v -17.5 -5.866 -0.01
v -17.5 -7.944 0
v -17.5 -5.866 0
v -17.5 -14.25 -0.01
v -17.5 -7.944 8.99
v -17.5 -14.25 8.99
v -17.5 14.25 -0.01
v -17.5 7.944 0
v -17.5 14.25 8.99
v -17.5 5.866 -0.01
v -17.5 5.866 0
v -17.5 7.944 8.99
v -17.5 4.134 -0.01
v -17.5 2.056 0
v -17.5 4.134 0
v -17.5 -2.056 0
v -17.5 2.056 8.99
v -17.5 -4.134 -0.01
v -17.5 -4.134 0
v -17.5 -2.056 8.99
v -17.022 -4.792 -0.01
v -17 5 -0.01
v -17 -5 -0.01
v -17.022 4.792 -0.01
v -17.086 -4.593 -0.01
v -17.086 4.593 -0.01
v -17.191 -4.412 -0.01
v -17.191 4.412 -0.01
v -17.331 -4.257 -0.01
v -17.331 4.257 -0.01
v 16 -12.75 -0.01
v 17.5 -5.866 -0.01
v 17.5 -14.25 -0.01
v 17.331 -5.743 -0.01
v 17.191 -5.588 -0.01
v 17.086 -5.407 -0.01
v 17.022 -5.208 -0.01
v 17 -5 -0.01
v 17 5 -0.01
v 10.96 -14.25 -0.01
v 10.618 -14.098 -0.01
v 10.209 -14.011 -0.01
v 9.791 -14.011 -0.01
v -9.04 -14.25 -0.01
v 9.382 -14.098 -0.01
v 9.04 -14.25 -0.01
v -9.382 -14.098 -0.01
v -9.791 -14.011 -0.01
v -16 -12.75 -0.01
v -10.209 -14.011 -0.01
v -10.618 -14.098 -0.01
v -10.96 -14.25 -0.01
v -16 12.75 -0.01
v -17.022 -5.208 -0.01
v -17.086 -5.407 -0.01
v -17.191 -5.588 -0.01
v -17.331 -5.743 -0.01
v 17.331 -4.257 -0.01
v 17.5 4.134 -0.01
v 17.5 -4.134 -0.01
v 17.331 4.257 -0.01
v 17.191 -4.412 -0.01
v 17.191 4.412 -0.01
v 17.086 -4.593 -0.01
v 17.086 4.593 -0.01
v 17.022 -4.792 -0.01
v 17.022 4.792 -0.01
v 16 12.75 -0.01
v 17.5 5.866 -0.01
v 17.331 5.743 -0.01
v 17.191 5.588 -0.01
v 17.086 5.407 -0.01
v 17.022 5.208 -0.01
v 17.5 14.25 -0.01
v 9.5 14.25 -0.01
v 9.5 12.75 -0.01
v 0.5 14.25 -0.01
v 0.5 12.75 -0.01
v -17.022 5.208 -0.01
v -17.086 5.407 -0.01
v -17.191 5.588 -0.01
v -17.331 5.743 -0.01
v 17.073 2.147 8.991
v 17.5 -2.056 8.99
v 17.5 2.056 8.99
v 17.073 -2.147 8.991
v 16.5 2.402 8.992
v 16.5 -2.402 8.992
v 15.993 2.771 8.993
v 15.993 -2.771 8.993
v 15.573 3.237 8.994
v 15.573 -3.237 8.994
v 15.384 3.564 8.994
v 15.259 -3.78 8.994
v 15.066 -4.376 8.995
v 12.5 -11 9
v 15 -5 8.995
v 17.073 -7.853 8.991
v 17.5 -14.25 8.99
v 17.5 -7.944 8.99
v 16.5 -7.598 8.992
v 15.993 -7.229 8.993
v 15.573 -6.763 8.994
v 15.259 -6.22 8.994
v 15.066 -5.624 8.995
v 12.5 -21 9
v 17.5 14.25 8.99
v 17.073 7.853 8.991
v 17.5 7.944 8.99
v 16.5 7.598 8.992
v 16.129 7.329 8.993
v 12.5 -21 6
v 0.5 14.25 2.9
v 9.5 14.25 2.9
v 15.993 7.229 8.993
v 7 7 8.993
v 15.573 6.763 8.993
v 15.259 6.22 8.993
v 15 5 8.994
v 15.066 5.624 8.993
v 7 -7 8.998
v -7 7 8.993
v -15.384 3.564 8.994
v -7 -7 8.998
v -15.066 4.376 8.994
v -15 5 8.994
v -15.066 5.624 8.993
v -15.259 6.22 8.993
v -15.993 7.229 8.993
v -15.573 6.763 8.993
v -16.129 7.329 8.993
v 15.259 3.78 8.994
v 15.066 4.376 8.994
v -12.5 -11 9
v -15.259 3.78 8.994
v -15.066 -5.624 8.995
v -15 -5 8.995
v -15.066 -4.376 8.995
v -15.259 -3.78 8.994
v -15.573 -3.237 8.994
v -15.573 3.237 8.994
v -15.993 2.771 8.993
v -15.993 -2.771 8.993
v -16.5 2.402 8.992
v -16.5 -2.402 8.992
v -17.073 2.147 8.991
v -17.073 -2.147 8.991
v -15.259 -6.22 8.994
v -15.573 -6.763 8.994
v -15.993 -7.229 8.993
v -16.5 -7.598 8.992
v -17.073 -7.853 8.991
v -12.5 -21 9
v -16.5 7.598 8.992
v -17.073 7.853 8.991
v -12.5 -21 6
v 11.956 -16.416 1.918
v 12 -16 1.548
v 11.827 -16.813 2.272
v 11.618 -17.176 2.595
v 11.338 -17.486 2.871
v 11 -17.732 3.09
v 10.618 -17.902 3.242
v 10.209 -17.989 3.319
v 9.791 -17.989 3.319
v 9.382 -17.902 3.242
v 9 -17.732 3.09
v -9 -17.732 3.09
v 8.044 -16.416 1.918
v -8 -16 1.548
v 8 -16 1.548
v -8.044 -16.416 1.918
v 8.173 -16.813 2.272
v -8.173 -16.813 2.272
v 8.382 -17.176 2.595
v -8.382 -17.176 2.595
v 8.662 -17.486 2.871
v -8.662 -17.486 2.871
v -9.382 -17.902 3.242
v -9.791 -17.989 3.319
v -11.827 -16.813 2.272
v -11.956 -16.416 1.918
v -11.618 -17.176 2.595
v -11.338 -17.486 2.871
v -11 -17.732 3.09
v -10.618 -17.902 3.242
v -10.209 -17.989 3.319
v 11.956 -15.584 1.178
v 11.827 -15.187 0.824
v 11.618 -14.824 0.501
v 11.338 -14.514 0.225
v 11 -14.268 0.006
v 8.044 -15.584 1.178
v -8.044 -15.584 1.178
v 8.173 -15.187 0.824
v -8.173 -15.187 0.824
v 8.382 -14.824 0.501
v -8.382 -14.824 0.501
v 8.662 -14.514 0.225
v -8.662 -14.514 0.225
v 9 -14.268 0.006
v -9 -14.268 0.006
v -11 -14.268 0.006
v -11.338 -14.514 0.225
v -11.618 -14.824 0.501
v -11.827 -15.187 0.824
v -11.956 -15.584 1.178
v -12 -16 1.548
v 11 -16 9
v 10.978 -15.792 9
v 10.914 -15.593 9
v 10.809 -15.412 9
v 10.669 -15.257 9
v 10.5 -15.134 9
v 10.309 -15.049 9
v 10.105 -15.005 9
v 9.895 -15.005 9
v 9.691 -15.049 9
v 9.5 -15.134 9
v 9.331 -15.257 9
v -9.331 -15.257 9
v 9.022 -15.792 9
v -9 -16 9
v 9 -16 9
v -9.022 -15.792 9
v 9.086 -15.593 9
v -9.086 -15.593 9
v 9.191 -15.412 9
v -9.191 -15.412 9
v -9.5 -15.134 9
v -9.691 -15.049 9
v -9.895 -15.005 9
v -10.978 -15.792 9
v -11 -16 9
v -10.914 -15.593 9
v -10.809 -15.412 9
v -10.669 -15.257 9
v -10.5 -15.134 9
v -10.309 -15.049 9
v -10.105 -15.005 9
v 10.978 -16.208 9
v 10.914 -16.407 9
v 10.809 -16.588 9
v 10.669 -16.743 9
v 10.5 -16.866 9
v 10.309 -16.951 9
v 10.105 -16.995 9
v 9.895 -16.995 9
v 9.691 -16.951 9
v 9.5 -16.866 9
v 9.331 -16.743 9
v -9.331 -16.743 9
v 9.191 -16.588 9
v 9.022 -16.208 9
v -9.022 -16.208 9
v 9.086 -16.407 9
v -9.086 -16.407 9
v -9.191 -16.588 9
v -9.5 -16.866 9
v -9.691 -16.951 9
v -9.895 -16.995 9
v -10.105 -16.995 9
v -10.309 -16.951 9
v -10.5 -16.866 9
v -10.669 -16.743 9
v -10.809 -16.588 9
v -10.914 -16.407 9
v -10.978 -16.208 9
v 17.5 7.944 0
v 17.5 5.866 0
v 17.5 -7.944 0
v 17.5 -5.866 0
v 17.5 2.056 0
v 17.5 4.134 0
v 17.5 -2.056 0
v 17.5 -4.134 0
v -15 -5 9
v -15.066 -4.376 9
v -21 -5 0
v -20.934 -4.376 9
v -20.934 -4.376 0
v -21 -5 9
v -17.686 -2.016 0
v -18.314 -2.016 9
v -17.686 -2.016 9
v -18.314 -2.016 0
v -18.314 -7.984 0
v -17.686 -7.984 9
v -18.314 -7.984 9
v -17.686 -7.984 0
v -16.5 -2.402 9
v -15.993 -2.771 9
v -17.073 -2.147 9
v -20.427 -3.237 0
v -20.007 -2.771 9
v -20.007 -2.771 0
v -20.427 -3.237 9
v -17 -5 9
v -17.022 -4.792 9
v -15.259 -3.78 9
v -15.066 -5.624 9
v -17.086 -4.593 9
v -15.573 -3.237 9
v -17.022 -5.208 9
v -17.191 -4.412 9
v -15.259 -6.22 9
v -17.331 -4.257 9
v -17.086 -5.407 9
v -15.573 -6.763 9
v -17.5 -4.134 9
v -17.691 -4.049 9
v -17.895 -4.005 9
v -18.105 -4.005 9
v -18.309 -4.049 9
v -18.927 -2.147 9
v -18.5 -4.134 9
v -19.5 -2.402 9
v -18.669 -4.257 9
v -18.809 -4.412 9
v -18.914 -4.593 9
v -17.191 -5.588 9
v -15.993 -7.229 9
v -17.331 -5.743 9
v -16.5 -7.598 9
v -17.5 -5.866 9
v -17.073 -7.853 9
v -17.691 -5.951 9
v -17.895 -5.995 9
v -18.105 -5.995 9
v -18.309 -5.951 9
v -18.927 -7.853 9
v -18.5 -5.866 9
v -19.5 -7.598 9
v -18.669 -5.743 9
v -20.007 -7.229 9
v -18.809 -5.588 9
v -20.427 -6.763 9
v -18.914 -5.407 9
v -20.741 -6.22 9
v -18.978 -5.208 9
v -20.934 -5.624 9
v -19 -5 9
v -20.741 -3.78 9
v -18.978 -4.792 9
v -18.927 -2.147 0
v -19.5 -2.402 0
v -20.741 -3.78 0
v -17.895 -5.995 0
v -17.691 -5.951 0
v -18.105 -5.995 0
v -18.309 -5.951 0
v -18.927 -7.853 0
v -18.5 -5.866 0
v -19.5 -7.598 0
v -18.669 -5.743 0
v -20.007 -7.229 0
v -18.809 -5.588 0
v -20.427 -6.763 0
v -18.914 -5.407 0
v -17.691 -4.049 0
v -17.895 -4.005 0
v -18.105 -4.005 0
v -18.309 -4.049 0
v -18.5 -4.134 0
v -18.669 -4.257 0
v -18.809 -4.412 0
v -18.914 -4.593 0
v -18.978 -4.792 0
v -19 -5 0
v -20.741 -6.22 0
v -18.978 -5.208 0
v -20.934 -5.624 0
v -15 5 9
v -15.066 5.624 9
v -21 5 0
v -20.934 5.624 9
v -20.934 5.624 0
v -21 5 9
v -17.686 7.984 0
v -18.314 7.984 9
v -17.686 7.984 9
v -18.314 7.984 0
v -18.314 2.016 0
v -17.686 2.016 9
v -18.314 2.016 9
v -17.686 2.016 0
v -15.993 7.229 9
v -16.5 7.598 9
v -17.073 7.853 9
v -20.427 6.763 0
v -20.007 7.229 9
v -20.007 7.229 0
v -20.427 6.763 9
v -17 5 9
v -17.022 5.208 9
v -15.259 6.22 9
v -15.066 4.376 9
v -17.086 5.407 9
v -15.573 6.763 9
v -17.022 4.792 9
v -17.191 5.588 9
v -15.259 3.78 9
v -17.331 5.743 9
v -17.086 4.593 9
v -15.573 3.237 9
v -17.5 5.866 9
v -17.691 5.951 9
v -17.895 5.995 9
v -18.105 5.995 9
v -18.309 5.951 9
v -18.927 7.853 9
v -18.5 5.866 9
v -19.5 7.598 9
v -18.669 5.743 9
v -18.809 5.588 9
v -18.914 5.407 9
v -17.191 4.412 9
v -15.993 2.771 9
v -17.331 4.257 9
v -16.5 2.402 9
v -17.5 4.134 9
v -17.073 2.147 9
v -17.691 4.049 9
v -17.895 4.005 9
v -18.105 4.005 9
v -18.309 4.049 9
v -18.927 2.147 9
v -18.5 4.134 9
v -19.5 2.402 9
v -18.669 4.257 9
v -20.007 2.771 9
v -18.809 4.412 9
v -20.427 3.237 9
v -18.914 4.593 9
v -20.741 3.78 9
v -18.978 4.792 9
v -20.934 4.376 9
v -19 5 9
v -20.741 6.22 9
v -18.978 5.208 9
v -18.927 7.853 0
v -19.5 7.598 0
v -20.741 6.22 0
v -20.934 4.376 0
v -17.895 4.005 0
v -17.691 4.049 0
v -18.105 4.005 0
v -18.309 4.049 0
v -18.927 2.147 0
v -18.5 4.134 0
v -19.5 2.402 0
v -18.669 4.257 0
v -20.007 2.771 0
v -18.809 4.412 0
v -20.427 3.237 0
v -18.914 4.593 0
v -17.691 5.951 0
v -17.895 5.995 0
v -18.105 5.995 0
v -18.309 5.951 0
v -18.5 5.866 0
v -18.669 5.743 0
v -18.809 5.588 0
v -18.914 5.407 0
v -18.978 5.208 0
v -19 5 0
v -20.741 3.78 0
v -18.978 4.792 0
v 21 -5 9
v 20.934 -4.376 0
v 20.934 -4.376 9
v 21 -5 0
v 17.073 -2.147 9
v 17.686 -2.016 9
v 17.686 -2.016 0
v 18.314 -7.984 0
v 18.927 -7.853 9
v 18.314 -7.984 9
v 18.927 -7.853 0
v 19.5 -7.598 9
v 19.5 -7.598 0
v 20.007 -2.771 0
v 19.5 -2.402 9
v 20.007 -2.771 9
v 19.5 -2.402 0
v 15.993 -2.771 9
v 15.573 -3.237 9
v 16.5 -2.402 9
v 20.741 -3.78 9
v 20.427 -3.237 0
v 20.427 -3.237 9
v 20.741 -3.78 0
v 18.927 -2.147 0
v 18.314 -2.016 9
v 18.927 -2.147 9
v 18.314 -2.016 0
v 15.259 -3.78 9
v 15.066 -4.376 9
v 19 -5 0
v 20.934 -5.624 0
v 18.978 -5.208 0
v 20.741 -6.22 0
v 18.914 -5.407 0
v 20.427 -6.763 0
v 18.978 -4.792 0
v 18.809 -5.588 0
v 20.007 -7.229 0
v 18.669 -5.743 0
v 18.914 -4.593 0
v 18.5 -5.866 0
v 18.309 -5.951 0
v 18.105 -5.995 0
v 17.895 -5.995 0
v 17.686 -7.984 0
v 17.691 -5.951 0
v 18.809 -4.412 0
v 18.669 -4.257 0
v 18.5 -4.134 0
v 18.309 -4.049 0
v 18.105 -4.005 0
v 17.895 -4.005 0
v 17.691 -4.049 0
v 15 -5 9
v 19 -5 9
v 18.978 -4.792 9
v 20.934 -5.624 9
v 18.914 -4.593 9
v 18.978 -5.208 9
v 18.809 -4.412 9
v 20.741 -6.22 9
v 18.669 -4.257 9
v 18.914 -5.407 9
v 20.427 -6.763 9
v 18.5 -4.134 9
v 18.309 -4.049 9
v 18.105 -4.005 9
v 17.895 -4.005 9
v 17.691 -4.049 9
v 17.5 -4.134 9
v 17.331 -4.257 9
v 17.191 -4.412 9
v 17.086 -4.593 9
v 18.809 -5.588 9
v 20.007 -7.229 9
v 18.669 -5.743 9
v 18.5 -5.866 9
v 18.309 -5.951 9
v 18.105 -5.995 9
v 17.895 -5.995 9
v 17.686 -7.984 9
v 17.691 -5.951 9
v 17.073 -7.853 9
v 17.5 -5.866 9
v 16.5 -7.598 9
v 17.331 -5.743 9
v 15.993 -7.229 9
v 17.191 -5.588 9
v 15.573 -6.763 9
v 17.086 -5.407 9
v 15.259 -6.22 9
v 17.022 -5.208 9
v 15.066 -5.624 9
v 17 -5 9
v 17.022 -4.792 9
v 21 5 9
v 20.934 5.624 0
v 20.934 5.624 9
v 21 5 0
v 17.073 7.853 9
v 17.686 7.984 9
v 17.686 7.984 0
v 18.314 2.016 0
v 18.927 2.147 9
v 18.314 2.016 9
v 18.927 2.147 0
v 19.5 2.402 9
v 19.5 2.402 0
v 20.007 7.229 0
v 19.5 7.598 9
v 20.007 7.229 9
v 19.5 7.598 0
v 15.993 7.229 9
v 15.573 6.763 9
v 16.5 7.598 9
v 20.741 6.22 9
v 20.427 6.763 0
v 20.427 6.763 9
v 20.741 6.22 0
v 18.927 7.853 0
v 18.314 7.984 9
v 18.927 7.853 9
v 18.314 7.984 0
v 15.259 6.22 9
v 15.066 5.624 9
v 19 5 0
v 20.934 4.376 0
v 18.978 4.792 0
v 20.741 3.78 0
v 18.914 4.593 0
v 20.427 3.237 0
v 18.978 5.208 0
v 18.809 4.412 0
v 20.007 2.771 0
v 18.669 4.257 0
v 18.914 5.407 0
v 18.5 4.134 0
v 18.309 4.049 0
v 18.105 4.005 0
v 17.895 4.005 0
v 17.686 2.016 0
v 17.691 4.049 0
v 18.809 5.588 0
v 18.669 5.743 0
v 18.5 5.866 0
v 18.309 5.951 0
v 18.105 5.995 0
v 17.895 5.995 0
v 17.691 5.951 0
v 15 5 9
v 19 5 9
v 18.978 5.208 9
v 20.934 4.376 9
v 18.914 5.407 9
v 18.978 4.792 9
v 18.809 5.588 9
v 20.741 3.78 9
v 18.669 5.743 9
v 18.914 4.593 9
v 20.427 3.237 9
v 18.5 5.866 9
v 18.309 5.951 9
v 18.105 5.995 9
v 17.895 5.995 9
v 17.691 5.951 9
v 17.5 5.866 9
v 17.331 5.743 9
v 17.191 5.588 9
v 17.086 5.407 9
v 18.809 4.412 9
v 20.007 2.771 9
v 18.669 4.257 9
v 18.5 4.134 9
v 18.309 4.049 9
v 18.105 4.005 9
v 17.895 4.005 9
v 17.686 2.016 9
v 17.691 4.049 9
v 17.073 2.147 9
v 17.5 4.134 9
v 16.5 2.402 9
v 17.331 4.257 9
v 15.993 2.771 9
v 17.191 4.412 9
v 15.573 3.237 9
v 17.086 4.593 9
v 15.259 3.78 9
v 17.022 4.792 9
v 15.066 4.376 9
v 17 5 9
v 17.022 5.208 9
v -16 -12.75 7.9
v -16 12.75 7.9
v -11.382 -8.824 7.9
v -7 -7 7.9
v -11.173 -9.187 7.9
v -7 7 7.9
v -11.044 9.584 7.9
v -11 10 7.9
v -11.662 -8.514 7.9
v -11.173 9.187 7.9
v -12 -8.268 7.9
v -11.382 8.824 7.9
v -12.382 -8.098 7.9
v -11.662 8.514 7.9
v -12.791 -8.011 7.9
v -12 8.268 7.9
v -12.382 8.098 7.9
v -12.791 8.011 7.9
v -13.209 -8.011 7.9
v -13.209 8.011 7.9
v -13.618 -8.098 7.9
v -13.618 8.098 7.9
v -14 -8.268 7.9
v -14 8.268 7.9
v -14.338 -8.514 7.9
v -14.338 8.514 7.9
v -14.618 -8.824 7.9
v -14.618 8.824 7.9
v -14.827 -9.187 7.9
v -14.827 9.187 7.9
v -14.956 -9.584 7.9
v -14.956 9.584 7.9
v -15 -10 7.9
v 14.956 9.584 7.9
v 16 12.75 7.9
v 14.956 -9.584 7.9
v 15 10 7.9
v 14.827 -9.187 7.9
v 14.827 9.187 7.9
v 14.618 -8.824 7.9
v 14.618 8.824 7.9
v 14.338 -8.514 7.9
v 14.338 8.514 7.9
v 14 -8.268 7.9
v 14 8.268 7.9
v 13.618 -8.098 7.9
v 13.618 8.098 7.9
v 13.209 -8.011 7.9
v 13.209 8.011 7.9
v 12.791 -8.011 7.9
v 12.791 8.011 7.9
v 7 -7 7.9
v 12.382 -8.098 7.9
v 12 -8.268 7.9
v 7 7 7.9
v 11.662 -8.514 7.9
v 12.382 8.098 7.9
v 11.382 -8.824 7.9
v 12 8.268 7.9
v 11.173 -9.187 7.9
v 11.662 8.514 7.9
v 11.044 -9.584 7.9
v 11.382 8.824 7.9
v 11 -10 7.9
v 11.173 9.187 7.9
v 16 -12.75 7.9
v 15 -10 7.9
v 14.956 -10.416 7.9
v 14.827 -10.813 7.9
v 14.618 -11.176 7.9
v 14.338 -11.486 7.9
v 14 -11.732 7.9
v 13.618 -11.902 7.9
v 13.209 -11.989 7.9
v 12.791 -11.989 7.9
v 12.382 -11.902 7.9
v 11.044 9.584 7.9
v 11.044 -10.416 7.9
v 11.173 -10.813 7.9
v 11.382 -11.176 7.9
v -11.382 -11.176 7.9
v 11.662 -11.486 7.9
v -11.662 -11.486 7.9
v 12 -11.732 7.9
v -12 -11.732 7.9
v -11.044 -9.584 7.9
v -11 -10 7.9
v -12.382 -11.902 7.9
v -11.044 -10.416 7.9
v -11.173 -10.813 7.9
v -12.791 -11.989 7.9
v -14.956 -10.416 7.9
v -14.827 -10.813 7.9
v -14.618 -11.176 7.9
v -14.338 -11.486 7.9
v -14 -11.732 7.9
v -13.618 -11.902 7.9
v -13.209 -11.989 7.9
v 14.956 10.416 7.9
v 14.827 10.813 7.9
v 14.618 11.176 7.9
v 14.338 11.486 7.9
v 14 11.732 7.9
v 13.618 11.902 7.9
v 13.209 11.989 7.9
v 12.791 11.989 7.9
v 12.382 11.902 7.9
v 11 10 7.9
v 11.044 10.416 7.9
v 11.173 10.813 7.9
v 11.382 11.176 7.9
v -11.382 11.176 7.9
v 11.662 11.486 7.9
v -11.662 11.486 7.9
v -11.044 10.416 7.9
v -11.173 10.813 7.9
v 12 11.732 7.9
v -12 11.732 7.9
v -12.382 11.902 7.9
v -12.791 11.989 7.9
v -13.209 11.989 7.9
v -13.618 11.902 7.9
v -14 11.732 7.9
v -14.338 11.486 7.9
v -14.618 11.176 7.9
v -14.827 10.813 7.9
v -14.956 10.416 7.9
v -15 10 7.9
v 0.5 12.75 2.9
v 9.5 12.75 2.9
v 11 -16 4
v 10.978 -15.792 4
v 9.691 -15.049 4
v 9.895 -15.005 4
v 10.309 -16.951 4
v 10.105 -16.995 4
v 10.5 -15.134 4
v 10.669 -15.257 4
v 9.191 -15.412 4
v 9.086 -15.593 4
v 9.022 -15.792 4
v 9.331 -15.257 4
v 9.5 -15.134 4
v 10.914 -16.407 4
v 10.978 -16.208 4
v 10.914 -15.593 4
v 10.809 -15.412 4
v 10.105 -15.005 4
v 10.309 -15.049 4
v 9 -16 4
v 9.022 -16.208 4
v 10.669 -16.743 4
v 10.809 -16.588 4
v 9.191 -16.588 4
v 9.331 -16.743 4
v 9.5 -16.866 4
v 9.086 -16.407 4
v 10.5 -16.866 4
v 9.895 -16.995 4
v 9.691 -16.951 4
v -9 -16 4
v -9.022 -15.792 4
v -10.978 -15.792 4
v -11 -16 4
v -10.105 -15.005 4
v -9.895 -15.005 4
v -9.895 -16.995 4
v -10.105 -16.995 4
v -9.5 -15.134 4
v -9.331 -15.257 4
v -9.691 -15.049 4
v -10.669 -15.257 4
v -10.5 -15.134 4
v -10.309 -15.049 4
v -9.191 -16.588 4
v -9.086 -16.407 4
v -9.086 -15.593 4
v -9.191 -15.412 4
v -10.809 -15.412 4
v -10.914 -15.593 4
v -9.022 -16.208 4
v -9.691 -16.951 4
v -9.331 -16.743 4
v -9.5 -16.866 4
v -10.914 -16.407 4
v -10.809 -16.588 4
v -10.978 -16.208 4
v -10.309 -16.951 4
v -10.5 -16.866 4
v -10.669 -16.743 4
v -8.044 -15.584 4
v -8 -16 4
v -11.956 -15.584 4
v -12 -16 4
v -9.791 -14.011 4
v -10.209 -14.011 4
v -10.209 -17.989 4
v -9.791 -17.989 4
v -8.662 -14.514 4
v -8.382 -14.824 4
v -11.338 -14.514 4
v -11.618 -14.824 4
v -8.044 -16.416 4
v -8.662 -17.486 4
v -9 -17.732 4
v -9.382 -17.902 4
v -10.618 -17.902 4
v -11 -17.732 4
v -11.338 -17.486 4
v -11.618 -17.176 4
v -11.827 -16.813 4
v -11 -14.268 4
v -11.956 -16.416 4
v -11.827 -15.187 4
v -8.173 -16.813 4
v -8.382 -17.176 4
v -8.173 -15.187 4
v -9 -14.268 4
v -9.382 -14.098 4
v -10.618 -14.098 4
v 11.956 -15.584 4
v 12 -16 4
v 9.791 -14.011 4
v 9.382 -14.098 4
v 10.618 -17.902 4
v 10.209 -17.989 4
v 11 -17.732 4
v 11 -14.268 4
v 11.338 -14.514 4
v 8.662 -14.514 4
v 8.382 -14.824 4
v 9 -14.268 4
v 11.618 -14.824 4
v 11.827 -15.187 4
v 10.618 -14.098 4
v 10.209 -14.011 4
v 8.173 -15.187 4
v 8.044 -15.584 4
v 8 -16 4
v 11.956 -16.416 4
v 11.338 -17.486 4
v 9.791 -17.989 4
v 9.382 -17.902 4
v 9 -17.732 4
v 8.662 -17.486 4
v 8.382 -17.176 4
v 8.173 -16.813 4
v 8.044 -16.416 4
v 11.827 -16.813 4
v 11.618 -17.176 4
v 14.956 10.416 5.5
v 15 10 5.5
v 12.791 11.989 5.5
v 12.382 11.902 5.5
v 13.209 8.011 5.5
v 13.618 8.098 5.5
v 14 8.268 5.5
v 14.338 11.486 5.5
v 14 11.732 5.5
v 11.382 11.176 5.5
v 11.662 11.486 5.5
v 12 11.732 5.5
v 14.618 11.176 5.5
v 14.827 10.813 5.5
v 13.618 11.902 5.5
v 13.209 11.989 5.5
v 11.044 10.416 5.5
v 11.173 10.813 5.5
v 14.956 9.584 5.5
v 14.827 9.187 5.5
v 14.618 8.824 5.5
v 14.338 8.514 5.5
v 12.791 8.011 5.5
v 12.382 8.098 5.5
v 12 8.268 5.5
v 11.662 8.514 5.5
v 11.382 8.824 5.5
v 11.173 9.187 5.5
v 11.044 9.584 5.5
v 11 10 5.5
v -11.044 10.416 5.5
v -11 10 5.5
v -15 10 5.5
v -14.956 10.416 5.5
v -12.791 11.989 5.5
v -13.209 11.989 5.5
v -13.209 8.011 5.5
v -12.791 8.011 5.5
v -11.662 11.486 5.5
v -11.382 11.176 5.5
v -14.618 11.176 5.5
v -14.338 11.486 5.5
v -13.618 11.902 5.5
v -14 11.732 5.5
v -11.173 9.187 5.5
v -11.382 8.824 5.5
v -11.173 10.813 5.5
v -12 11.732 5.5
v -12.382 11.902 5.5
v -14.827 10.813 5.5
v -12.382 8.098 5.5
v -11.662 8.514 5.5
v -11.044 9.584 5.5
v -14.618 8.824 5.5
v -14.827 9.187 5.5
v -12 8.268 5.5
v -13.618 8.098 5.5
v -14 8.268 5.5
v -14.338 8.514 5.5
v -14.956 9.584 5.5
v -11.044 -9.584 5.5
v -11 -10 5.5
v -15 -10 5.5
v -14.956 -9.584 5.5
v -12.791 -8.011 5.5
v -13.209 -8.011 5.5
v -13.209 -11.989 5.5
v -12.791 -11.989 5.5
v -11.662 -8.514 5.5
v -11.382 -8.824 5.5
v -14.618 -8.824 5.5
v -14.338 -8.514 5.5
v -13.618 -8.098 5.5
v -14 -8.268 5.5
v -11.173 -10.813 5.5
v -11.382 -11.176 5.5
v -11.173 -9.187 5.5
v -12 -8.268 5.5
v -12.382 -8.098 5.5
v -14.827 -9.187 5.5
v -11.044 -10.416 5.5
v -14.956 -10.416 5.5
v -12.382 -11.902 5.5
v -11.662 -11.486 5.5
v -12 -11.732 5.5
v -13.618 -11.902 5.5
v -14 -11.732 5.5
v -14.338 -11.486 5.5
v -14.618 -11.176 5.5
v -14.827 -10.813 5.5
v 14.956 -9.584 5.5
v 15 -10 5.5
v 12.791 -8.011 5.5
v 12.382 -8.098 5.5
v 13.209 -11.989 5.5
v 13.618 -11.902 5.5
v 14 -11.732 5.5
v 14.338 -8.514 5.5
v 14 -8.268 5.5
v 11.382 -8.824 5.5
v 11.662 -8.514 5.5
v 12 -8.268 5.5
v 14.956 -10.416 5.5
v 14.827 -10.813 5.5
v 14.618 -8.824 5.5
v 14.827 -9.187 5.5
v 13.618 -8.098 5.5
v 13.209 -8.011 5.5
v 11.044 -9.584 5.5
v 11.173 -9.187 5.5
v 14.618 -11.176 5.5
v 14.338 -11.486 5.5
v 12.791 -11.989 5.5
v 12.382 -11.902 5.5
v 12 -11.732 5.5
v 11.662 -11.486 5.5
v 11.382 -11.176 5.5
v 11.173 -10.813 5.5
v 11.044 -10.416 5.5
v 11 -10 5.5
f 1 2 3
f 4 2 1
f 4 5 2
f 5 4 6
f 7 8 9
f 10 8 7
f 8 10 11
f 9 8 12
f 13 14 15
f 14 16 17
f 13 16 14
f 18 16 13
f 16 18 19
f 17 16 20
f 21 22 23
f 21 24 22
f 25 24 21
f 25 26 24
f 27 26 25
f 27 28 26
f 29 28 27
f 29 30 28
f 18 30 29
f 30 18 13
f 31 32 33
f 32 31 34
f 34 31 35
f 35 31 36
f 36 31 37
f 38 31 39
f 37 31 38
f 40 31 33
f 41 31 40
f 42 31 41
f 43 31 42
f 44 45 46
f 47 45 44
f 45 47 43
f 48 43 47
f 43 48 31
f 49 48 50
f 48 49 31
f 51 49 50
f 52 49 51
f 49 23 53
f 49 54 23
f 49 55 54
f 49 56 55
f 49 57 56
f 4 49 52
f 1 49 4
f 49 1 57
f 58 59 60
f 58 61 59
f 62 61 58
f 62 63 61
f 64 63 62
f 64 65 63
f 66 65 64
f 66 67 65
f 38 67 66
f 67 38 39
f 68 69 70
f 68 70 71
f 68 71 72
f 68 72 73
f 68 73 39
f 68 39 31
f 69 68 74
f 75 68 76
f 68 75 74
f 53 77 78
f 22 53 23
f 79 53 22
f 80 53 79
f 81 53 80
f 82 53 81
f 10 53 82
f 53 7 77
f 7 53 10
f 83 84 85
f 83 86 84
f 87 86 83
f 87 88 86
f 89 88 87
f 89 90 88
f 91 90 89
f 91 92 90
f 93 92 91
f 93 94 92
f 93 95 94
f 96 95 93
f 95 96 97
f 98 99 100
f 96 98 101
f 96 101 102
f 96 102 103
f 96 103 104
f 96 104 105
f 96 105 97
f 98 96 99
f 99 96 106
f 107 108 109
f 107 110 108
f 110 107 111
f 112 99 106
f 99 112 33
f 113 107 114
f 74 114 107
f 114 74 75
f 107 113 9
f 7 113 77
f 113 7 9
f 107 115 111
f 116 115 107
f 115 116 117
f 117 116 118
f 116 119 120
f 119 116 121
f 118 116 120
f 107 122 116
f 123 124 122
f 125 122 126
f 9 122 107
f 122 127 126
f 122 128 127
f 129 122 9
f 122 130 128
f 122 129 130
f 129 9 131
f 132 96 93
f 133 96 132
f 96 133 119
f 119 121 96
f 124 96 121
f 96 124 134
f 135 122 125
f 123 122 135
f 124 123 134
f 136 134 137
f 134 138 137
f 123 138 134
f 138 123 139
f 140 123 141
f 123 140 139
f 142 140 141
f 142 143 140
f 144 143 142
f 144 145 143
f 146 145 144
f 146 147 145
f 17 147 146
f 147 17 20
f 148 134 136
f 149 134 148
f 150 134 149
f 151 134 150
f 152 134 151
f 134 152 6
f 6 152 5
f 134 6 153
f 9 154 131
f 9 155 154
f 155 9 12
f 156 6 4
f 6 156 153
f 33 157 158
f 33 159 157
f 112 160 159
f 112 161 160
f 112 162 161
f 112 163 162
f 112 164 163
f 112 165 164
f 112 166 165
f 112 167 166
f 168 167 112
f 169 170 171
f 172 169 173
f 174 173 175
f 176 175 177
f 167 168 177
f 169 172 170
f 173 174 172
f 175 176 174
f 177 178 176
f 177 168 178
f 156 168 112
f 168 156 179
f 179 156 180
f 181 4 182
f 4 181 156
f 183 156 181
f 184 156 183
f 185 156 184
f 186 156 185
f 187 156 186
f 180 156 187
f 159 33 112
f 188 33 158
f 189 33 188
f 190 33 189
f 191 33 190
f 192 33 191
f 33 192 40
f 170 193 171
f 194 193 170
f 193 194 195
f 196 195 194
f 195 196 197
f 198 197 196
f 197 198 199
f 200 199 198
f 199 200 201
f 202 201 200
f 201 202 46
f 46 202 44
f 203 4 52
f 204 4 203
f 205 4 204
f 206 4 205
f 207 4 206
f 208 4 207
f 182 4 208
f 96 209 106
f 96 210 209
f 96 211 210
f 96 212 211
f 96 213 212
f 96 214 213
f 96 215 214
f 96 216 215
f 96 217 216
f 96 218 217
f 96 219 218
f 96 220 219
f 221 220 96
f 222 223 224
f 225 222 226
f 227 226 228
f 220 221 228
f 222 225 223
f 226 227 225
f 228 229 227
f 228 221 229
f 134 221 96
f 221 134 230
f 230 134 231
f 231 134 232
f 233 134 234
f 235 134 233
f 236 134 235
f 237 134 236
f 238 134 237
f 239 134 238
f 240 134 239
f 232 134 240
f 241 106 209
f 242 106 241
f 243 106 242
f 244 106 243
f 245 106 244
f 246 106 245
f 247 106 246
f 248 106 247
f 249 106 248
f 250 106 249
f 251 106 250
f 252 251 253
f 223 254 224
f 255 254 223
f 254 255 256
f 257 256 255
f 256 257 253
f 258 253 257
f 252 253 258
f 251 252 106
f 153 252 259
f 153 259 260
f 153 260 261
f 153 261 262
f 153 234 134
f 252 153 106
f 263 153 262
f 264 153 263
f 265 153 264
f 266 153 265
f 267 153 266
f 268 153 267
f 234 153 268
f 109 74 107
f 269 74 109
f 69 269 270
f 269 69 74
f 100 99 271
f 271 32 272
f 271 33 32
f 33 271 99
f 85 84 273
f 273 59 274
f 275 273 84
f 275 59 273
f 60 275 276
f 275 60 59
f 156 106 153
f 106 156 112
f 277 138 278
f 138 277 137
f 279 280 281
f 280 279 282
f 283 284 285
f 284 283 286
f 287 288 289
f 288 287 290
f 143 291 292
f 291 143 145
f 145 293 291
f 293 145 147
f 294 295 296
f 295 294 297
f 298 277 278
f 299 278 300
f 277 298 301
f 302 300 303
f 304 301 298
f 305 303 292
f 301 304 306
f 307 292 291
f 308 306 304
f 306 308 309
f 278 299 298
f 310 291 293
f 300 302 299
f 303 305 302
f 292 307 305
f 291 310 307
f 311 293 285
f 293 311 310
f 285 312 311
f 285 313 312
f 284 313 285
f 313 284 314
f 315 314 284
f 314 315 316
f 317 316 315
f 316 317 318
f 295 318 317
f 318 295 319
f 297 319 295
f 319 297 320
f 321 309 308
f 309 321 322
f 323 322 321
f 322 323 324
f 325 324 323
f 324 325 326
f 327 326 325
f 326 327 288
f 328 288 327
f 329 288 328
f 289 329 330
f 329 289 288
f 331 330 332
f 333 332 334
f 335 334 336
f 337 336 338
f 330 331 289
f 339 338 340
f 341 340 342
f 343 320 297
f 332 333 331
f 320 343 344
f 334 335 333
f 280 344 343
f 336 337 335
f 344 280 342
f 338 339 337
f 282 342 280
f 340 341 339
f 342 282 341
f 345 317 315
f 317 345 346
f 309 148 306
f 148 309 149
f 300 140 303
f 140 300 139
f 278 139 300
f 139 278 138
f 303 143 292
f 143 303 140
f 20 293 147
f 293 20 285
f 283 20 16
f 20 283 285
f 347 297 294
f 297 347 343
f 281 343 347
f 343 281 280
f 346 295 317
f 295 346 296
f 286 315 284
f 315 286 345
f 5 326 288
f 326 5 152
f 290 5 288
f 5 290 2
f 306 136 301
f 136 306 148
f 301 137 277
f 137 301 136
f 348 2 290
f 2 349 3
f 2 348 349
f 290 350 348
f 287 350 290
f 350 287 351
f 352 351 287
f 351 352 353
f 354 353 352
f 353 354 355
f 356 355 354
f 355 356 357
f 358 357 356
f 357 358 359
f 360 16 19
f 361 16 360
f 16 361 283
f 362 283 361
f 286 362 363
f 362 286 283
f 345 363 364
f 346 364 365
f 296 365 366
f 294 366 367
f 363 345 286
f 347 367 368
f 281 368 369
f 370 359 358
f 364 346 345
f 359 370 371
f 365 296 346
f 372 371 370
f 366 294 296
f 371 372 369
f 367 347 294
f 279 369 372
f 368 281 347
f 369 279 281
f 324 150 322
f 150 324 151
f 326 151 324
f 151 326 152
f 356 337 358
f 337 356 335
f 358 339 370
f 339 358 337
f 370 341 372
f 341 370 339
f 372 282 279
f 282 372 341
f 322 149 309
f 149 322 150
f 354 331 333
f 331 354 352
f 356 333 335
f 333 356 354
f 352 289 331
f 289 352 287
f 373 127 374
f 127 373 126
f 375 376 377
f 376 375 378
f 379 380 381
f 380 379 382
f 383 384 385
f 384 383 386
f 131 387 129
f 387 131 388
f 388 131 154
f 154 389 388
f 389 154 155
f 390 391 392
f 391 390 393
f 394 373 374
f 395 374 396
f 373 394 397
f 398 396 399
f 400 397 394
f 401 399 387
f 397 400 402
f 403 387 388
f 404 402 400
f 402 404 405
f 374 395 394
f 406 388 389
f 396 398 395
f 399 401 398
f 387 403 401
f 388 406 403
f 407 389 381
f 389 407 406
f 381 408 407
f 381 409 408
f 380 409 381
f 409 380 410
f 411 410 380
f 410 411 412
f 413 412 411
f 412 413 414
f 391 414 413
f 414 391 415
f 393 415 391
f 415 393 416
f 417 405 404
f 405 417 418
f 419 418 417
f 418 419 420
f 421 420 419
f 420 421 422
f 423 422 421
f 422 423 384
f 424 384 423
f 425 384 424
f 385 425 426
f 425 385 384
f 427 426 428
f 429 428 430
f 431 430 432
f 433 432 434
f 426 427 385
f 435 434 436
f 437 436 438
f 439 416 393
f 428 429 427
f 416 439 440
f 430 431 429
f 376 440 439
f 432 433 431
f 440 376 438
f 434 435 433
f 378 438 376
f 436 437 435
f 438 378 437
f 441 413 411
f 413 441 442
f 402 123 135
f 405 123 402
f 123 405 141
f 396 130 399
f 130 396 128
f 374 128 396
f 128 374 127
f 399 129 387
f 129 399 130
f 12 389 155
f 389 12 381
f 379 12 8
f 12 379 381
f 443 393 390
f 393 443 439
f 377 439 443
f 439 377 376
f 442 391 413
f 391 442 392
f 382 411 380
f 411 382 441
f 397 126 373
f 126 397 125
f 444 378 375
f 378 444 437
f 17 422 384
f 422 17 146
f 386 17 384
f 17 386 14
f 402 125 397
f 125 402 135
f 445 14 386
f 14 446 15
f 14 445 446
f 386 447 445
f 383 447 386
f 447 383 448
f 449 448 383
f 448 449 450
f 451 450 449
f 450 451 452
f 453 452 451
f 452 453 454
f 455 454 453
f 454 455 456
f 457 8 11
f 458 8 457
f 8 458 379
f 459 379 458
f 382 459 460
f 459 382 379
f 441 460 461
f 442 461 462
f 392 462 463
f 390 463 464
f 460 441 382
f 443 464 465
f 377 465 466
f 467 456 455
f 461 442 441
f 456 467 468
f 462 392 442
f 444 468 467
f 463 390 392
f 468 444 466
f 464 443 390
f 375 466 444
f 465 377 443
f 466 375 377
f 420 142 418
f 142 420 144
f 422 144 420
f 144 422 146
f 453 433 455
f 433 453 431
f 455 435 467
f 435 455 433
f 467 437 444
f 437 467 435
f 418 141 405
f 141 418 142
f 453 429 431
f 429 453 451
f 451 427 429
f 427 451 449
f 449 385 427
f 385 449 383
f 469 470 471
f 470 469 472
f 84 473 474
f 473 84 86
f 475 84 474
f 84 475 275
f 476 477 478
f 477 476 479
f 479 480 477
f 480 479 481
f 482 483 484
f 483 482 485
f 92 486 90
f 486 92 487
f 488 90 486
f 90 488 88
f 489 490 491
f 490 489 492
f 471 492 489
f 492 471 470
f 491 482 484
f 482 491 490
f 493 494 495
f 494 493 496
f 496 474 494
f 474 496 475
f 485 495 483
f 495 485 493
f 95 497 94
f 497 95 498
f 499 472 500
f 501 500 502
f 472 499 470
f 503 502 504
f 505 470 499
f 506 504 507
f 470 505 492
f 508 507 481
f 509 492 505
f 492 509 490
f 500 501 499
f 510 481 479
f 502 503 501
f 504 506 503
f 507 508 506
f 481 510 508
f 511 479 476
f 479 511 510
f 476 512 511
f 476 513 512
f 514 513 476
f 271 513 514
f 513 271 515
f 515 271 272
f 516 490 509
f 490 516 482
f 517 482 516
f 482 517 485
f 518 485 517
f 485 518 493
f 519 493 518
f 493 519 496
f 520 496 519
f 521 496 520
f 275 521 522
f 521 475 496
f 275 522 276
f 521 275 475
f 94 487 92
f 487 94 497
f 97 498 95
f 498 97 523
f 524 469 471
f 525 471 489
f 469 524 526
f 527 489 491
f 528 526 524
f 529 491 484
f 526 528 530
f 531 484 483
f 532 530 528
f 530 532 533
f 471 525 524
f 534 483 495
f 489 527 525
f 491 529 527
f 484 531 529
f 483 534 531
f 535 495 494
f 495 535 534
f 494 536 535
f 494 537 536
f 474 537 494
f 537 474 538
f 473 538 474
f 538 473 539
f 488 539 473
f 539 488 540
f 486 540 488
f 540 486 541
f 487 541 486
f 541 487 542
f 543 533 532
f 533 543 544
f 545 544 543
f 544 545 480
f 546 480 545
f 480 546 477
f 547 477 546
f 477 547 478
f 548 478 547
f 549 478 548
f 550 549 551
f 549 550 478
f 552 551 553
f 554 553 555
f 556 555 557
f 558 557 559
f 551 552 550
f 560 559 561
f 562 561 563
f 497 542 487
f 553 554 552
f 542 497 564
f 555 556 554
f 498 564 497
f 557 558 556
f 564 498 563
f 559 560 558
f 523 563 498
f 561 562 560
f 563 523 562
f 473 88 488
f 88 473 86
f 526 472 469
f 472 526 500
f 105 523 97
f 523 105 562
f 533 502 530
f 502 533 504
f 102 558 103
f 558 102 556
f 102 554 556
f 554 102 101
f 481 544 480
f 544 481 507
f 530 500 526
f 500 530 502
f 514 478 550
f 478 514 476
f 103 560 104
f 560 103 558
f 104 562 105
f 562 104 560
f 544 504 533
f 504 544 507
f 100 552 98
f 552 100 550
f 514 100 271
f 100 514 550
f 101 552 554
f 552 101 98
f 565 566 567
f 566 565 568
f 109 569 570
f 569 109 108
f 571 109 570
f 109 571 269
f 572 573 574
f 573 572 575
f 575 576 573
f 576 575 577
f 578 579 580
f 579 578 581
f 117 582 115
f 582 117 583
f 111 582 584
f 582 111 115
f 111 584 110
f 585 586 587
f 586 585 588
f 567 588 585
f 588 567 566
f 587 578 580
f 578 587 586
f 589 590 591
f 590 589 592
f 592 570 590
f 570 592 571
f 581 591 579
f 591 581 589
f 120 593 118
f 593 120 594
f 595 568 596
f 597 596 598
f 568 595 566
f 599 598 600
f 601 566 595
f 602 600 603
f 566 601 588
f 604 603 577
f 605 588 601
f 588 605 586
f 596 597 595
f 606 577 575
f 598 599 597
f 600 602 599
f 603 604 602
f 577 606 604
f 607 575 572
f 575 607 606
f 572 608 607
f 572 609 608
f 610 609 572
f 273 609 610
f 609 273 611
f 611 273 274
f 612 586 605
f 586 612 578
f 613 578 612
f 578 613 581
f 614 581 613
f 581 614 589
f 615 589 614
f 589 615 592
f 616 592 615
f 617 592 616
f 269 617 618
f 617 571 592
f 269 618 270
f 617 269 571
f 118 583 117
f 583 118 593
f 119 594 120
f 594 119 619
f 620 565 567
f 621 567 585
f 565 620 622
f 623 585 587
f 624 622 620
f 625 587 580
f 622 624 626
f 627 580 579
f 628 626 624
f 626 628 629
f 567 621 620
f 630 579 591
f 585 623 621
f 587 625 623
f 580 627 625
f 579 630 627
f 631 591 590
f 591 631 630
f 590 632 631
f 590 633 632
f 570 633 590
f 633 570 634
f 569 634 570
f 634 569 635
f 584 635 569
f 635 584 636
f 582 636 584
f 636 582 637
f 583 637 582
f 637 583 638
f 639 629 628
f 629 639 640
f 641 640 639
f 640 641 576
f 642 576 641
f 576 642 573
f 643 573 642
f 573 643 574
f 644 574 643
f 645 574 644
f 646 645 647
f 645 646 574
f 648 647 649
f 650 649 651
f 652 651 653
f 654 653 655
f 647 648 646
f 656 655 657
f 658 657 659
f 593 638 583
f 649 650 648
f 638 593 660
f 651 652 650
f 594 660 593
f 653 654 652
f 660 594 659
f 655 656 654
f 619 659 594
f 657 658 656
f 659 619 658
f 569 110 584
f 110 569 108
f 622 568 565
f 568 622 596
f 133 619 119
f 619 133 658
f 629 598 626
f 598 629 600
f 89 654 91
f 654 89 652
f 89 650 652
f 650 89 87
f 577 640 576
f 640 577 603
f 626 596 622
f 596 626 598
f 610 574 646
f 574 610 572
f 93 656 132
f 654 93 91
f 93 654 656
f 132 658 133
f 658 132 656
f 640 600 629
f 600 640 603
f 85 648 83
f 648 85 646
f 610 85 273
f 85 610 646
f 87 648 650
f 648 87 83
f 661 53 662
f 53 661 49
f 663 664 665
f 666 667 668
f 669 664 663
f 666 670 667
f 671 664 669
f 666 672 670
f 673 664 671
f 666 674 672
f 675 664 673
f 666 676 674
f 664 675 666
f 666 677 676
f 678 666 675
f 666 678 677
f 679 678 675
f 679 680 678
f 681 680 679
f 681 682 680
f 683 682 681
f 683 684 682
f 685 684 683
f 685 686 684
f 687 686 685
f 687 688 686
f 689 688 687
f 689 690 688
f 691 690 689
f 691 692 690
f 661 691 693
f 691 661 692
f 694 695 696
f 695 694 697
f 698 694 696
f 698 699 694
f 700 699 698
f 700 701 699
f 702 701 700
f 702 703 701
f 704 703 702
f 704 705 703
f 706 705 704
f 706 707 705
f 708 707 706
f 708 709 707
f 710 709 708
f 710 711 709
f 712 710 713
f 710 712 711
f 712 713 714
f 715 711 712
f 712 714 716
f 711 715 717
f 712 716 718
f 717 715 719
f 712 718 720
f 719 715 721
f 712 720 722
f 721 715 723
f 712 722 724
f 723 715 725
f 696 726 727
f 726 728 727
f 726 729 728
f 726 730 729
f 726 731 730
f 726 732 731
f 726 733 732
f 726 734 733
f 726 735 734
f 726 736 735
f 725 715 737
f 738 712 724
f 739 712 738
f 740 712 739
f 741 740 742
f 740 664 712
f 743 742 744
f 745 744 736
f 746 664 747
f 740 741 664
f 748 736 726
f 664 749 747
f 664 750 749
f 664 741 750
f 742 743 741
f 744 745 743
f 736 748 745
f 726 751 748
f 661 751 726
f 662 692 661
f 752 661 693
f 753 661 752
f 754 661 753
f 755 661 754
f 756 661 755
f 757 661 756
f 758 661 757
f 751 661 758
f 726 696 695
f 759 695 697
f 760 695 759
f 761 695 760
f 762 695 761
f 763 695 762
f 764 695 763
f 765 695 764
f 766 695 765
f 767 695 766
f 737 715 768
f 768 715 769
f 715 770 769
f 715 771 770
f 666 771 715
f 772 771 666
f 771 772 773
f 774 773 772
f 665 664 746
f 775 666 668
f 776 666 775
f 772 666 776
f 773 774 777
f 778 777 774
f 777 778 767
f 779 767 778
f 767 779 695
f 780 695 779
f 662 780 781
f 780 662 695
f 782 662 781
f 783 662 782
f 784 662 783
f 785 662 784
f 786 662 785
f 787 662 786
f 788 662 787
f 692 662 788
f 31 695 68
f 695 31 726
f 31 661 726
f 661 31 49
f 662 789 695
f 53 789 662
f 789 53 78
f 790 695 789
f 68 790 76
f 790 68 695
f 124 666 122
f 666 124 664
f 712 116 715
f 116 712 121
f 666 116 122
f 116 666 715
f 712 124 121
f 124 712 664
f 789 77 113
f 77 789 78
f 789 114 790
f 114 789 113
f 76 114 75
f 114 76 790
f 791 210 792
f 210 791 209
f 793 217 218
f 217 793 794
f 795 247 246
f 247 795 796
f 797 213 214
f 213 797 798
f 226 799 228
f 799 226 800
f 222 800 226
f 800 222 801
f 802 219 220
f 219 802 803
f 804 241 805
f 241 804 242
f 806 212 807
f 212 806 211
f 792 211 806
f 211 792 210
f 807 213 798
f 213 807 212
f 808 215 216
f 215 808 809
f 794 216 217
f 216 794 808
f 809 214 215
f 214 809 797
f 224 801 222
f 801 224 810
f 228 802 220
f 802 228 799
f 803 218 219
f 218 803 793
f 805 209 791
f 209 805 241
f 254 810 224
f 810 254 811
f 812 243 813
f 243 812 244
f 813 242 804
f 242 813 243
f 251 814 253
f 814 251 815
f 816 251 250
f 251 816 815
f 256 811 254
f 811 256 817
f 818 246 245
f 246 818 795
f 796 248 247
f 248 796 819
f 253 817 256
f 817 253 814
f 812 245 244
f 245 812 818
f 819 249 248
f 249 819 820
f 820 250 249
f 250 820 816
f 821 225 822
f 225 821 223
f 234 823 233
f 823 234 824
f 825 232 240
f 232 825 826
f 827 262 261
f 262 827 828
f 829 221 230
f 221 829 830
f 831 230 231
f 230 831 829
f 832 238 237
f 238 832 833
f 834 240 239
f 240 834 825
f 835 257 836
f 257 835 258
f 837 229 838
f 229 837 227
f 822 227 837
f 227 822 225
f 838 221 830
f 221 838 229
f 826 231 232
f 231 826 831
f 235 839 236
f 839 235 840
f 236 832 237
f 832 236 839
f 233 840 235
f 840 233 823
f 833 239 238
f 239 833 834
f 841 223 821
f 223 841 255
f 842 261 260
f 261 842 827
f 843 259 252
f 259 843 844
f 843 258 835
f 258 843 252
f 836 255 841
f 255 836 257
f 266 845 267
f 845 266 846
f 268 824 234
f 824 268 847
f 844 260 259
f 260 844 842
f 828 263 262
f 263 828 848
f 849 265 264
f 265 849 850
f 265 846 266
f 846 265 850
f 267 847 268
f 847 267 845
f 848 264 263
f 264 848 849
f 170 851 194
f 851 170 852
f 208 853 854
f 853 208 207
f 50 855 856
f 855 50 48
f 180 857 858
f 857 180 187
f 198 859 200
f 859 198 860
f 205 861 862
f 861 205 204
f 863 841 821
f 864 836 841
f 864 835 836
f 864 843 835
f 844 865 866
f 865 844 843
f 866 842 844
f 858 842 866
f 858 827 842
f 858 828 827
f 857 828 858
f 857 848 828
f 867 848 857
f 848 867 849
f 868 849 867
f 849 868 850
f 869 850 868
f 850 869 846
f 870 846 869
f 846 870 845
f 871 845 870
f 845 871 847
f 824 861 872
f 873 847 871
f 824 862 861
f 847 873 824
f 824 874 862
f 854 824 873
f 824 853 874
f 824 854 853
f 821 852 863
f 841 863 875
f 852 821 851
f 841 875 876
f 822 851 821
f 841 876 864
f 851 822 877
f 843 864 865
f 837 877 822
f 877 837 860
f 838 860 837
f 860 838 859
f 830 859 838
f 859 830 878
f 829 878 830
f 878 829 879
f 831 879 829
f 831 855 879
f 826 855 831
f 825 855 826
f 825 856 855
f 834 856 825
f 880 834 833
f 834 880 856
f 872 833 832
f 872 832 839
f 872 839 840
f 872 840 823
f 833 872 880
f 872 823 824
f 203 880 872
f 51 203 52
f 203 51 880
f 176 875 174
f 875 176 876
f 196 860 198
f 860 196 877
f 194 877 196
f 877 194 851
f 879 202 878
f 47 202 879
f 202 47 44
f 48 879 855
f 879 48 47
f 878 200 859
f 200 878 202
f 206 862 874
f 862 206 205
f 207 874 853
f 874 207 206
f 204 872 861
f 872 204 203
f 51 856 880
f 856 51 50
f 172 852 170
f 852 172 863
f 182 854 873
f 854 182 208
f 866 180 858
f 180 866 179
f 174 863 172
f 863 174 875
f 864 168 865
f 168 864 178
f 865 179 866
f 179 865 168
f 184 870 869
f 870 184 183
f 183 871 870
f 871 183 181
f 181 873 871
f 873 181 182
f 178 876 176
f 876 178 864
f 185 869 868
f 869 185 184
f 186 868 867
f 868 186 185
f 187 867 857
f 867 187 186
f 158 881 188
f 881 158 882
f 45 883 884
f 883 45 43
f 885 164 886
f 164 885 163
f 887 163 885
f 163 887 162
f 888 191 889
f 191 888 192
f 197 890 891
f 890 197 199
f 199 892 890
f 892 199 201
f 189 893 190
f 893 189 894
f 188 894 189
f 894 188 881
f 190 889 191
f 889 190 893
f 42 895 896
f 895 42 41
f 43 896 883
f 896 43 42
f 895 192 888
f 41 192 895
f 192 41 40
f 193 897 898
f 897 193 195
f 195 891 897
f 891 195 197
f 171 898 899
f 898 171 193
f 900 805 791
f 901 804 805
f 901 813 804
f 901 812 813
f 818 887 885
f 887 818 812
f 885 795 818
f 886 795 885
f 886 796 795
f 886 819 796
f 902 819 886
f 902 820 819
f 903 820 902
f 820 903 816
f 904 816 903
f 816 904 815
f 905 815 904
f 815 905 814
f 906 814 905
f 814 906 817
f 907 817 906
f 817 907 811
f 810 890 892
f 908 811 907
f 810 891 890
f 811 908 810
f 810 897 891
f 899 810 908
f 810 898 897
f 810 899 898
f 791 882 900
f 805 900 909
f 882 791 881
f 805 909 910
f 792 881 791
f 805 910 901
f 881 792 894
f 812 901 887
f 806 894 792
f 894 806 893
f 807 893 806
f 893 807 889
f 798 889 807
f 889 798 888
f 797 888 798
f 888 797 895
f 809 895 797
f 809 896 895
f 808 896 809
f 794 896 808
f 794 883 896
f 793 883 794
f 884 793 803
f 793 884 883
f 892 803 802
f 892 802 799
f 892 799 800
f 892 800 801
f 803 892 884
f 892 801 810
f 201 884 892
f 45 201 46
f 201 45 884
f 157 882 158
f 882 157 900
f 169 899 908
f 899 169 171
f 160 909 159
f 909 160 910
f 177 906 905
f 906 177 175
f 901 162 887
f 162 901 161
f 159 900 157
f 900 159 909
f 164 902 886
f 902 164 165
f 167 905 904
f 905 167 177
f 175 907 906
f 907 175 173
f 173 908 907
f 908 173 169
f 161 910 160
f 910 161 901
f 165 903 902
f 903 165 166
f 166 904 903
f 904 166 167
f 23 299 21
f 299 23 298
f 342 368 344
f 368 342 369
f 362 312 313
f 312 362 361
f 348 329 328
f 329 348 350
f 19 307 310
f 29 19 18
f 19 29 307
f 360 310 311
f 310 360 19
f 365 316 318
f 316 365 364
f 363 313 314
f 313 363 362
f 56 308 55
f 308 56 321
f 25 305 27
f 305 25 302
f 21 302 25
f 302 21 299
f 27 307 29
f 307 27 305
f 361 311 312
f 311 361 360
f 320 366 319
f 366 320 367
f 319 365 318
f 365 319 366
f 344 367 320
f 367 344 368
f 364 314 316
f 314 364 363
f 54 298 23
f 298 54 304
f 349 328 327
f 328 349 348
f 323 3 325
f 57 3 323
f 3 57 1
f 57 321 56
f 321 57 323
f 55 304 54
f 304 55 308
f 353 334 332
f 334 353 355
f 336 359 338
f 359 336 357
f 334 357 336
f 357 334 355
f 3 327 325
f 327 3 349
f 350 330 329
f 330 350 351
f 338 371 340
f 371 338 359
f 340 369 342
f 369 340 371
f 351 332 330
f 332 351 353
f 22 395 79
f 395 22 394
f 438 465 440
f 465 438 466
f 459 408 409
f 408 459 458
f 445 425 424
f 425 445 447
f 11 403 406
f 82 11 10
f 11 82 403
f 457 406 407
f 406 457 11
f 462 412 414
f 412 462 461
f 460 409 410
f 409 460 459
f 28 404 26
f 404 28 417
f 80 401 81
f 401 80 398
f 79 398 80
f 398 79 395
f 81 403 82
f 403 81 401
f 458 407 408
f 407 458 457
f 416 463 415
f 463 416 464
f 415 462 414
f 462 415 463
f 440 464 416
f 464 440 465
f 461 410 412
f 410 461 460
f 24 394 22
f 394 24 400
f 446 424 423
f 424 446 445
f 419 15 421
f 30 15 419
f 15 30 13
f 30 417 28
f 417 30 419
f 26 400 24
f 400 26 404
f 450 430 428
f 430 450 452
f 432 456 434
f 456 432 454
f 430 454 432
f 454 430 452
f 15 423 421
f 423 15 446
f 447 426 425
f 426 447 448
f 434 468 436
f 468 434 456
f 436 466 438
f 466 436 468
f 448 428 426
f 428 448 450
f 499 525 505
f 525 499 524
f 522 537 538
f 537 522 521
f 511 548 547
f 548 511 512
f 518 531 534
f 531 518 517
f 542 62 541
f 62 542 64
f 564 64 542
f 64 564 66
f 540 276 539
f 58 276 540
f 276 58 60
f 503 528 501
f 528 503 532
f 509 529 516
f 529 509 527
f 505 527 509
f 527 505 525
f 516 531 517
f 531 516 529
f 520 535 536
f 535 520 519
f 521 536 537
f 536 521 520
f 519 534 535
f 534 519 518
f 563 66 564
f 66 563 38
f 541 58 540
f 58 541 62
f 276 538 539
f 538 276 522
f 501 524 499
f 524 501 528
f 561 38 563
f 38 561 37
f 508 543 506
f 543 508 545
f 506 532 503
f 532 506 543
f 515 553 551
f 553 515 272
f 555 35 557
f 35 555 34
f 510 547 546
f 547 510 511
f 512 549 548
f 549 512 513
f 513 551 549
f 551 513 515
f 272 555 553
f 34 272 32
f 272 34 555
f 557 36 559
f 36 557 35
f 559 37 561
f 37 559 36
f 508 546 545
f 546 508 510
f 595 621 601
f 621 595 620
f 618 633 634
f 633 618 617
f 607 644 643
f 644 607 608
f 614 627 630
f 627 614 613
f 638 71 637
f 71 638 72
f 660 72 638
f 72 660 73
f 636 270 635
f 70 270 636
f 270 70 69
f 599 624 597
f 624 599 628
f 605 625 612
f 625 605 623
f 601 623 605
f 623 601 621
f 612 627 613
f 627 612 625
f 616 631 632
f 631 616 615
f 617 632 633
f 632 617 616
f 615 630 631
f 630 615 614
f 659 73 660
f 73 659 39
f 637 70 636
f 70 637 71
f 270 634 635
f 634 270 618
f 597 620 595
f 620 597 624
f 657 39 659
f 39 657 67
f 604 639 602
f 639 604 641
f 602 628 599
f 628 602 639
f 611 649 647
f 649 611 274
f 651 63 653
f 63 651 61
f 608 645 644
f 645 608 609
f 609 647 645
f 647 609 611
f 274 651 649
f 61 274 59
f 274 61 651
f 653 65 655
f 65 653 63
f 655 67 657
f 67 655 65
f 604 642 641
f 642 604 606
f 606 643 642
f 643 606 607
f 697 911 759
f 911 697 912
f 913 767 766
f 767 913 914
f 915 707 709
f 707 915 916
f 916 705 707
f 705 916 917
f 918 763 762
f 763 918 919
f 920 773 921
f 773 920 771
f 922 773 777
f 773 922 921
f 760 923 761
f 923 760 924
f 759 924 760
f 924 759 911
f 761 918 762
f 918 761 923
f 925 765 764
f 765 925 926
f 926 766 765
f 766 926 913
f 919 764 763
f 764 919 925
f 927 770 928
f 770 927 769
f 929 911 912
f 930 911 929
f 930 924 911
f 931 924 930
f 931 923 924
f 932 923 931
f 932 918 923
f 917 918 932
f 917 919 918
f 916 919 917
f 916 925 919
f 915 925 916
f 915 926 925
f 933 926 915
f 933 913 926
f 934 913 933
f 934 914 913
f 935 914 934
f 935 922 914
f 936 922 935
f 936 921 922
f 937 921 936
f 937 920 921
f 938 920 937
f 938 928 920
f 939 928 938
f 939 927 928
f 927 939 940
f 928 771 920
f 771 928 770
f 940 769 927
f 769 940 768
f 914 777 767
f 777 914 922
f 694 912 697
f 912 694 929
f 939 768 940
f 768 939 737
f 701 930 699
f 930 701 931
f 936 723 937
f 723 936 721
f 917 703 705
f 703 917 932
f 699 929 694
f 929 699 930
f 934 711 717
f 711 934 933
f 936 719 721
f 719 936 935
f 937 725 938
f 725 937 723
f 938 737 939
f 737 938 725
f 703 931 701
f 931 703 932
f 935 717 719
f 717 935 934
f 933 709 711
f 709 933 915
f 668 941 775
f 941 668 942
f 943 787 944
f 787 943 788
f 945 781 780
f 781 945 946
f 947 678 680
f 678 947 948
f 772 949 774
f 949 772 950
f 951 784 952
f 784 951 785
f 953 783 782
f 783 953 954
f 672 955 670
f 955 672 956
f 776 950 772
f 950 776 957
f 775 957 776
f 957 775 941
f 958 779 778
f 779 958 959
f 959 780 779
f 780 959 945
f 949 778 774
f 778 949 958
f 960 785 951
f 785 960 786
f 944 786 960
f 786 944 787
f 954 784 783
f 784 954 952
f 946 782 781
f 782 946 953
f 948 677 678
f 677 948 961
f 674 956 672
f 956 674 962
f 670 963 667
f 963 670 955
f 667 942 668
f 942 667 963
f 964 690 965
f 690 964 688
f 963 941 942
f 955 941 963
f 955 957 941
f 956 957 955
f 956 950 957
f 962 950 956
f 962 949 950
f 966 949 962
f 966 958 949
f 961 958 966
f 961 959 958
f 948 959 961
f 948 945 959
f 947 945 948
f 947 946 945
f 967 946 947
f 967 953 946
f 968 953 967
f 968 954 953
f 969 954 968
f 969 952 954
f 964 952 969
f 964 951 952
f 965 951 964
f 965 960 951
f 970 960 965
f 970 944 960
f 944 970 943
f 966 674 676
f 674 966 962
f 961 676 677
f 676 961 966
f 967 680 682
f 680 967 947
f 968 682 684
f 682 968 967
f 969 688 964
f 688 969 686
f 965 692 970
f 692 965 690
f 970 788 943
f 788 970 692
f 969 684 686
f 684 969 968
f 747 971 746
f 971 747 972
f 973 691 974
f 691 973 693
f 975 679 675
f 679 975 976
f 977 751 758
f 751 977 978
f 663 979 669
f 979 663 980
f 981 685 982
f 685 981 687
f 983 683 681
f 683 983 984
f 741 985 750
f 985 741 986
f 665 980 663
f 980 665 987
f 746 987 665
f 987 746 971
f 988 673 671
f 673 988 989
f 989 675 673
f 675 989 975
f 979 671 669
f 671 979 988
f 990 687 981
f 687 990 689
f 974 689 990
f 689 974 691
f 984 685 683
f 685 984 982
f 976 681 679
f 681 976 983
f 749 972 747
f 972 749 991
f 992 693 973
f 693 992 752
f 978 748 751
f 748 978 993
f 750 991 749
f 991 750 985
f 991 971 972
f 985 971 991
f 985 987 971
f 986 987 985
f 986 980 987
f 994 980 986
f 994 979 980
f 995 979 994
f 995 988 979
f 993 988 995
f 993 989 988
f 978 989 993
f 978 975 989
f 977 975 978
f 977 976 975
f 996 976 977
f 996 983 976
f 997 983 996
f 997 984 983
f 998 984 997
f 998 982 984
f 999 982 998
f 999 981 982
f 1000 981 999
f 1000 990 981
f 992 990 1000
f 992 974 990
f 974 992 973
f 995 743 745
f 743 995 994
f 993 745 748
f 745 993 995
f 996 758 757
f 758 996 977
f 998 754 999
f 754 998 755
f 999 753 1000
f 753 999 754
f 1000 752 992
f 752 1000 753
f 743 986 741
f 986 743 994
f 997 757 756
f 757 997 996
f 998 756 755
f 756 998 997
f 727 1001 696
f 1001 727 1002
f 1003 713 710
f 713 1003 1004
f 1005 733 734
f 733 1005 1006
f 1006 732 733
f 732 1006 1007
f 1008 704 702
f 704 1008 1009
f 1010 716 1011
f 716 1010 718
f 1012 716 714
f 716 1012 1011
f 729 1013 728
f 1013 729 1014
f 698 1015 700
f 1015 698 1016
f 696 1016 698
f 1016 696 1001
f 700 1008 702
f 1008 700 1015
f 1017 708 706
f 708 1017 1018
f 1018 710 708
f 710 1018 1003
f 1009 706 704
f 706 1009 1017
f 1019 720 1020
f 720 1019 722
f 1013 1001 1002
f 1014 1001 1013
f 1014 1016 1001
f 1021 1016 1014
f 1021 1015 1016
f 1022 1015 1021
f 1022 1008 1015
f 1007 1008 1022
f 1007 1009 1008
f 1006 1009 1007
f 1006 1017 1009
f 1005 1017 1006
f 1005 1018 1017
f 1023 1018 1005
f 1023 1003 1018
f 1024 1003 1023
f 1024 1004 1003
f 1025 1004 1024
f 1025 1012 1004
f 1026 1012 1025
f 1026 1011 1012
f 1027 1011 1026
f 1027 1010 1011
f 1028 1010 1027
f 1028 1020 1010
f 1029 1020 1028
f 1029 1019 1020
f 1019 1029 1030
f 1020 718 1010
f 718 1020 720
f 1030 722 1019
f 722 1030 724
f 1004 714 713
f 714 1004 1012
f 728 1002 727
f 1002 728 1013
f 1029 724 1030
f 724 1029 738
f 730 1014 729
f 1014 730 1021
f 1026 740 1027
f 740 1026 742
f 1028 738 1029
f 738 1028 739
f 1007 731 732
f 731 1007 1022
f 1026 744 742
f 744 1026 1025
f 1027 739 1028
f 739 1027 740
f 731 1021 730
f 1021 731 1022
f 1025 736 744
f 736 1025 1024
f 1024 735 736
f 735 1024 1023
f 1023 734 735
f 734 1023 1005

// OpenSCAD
a1 = 32;
a2 =25.5;
a3 = 5;
b1 = 14;

c1 = 9;
c2 = 10;
c3 = 3;


module camera(){
 translate([-a1/2,-a2/2,-3])cube([a1,a2,a3+3]);
 translate([-b1/2,-b1/2,0])cube([b1,b1,10]);
 translate([-c1/2+5,-c2/2+13,-3])cube([c1,c2,c3]);
}



difference(){

union(){
hull(){
  translate([-(a1+3)/2,-(a2+3)/2,-0.01])cube([a1+3,a2+3,a3+4]);
  translate([-25/2,-21,6])cube([25,10,3]);
}

translate([-18,-5,0])cylinder(r=3,h=9,$fn=30);
translate([-18, 5,0])cylinder(r=3,h=9,$fn=30);
translate([+18,-5,0])cylinder(r=3,h=9,$fn=30);
translate([+18, 5,0])cylinder(r=3,h=9,$fn=30);


}
translate([0,0,2.9])camera();
    
translate([+10,-b1/2-9,-1])cylinder(r=1.,h=20,$fn=30);
translate([-10,-b1/2-9,-1])cylinder(r=1.,h=20,$fn=30);
translate([-10,-b1/2-9,-16])cylinder(r=2,h=20,$fn=30);
translate([+10,-b1/2-9,-16])cylinder(r=2,h=20,$fn=30);

translate([-18,-5,-1])cylinder(r=1,h=11,$fn=30);
translate([-18, 5,-1])cylinder(r=1,h=11,$fn=30);
translate([+18,-5,-1])cylinder(r=1,h=11,$fn=30);
translate([+18, 5,-1])cylinder(r=1,h=11,$fn=30);

}

translate([+13,10,5.5])cylinder(r=2,h=3,$fn=30);
translate([-13,10,5.5])cylinder(r=2,h=3,$fn=30);
translate([-13,-10,5.5])cylinder(r=2,h=3,$fn=30);
translate([+13,-10,5.5])cylinder(r=2,h=3,$fn=30);
